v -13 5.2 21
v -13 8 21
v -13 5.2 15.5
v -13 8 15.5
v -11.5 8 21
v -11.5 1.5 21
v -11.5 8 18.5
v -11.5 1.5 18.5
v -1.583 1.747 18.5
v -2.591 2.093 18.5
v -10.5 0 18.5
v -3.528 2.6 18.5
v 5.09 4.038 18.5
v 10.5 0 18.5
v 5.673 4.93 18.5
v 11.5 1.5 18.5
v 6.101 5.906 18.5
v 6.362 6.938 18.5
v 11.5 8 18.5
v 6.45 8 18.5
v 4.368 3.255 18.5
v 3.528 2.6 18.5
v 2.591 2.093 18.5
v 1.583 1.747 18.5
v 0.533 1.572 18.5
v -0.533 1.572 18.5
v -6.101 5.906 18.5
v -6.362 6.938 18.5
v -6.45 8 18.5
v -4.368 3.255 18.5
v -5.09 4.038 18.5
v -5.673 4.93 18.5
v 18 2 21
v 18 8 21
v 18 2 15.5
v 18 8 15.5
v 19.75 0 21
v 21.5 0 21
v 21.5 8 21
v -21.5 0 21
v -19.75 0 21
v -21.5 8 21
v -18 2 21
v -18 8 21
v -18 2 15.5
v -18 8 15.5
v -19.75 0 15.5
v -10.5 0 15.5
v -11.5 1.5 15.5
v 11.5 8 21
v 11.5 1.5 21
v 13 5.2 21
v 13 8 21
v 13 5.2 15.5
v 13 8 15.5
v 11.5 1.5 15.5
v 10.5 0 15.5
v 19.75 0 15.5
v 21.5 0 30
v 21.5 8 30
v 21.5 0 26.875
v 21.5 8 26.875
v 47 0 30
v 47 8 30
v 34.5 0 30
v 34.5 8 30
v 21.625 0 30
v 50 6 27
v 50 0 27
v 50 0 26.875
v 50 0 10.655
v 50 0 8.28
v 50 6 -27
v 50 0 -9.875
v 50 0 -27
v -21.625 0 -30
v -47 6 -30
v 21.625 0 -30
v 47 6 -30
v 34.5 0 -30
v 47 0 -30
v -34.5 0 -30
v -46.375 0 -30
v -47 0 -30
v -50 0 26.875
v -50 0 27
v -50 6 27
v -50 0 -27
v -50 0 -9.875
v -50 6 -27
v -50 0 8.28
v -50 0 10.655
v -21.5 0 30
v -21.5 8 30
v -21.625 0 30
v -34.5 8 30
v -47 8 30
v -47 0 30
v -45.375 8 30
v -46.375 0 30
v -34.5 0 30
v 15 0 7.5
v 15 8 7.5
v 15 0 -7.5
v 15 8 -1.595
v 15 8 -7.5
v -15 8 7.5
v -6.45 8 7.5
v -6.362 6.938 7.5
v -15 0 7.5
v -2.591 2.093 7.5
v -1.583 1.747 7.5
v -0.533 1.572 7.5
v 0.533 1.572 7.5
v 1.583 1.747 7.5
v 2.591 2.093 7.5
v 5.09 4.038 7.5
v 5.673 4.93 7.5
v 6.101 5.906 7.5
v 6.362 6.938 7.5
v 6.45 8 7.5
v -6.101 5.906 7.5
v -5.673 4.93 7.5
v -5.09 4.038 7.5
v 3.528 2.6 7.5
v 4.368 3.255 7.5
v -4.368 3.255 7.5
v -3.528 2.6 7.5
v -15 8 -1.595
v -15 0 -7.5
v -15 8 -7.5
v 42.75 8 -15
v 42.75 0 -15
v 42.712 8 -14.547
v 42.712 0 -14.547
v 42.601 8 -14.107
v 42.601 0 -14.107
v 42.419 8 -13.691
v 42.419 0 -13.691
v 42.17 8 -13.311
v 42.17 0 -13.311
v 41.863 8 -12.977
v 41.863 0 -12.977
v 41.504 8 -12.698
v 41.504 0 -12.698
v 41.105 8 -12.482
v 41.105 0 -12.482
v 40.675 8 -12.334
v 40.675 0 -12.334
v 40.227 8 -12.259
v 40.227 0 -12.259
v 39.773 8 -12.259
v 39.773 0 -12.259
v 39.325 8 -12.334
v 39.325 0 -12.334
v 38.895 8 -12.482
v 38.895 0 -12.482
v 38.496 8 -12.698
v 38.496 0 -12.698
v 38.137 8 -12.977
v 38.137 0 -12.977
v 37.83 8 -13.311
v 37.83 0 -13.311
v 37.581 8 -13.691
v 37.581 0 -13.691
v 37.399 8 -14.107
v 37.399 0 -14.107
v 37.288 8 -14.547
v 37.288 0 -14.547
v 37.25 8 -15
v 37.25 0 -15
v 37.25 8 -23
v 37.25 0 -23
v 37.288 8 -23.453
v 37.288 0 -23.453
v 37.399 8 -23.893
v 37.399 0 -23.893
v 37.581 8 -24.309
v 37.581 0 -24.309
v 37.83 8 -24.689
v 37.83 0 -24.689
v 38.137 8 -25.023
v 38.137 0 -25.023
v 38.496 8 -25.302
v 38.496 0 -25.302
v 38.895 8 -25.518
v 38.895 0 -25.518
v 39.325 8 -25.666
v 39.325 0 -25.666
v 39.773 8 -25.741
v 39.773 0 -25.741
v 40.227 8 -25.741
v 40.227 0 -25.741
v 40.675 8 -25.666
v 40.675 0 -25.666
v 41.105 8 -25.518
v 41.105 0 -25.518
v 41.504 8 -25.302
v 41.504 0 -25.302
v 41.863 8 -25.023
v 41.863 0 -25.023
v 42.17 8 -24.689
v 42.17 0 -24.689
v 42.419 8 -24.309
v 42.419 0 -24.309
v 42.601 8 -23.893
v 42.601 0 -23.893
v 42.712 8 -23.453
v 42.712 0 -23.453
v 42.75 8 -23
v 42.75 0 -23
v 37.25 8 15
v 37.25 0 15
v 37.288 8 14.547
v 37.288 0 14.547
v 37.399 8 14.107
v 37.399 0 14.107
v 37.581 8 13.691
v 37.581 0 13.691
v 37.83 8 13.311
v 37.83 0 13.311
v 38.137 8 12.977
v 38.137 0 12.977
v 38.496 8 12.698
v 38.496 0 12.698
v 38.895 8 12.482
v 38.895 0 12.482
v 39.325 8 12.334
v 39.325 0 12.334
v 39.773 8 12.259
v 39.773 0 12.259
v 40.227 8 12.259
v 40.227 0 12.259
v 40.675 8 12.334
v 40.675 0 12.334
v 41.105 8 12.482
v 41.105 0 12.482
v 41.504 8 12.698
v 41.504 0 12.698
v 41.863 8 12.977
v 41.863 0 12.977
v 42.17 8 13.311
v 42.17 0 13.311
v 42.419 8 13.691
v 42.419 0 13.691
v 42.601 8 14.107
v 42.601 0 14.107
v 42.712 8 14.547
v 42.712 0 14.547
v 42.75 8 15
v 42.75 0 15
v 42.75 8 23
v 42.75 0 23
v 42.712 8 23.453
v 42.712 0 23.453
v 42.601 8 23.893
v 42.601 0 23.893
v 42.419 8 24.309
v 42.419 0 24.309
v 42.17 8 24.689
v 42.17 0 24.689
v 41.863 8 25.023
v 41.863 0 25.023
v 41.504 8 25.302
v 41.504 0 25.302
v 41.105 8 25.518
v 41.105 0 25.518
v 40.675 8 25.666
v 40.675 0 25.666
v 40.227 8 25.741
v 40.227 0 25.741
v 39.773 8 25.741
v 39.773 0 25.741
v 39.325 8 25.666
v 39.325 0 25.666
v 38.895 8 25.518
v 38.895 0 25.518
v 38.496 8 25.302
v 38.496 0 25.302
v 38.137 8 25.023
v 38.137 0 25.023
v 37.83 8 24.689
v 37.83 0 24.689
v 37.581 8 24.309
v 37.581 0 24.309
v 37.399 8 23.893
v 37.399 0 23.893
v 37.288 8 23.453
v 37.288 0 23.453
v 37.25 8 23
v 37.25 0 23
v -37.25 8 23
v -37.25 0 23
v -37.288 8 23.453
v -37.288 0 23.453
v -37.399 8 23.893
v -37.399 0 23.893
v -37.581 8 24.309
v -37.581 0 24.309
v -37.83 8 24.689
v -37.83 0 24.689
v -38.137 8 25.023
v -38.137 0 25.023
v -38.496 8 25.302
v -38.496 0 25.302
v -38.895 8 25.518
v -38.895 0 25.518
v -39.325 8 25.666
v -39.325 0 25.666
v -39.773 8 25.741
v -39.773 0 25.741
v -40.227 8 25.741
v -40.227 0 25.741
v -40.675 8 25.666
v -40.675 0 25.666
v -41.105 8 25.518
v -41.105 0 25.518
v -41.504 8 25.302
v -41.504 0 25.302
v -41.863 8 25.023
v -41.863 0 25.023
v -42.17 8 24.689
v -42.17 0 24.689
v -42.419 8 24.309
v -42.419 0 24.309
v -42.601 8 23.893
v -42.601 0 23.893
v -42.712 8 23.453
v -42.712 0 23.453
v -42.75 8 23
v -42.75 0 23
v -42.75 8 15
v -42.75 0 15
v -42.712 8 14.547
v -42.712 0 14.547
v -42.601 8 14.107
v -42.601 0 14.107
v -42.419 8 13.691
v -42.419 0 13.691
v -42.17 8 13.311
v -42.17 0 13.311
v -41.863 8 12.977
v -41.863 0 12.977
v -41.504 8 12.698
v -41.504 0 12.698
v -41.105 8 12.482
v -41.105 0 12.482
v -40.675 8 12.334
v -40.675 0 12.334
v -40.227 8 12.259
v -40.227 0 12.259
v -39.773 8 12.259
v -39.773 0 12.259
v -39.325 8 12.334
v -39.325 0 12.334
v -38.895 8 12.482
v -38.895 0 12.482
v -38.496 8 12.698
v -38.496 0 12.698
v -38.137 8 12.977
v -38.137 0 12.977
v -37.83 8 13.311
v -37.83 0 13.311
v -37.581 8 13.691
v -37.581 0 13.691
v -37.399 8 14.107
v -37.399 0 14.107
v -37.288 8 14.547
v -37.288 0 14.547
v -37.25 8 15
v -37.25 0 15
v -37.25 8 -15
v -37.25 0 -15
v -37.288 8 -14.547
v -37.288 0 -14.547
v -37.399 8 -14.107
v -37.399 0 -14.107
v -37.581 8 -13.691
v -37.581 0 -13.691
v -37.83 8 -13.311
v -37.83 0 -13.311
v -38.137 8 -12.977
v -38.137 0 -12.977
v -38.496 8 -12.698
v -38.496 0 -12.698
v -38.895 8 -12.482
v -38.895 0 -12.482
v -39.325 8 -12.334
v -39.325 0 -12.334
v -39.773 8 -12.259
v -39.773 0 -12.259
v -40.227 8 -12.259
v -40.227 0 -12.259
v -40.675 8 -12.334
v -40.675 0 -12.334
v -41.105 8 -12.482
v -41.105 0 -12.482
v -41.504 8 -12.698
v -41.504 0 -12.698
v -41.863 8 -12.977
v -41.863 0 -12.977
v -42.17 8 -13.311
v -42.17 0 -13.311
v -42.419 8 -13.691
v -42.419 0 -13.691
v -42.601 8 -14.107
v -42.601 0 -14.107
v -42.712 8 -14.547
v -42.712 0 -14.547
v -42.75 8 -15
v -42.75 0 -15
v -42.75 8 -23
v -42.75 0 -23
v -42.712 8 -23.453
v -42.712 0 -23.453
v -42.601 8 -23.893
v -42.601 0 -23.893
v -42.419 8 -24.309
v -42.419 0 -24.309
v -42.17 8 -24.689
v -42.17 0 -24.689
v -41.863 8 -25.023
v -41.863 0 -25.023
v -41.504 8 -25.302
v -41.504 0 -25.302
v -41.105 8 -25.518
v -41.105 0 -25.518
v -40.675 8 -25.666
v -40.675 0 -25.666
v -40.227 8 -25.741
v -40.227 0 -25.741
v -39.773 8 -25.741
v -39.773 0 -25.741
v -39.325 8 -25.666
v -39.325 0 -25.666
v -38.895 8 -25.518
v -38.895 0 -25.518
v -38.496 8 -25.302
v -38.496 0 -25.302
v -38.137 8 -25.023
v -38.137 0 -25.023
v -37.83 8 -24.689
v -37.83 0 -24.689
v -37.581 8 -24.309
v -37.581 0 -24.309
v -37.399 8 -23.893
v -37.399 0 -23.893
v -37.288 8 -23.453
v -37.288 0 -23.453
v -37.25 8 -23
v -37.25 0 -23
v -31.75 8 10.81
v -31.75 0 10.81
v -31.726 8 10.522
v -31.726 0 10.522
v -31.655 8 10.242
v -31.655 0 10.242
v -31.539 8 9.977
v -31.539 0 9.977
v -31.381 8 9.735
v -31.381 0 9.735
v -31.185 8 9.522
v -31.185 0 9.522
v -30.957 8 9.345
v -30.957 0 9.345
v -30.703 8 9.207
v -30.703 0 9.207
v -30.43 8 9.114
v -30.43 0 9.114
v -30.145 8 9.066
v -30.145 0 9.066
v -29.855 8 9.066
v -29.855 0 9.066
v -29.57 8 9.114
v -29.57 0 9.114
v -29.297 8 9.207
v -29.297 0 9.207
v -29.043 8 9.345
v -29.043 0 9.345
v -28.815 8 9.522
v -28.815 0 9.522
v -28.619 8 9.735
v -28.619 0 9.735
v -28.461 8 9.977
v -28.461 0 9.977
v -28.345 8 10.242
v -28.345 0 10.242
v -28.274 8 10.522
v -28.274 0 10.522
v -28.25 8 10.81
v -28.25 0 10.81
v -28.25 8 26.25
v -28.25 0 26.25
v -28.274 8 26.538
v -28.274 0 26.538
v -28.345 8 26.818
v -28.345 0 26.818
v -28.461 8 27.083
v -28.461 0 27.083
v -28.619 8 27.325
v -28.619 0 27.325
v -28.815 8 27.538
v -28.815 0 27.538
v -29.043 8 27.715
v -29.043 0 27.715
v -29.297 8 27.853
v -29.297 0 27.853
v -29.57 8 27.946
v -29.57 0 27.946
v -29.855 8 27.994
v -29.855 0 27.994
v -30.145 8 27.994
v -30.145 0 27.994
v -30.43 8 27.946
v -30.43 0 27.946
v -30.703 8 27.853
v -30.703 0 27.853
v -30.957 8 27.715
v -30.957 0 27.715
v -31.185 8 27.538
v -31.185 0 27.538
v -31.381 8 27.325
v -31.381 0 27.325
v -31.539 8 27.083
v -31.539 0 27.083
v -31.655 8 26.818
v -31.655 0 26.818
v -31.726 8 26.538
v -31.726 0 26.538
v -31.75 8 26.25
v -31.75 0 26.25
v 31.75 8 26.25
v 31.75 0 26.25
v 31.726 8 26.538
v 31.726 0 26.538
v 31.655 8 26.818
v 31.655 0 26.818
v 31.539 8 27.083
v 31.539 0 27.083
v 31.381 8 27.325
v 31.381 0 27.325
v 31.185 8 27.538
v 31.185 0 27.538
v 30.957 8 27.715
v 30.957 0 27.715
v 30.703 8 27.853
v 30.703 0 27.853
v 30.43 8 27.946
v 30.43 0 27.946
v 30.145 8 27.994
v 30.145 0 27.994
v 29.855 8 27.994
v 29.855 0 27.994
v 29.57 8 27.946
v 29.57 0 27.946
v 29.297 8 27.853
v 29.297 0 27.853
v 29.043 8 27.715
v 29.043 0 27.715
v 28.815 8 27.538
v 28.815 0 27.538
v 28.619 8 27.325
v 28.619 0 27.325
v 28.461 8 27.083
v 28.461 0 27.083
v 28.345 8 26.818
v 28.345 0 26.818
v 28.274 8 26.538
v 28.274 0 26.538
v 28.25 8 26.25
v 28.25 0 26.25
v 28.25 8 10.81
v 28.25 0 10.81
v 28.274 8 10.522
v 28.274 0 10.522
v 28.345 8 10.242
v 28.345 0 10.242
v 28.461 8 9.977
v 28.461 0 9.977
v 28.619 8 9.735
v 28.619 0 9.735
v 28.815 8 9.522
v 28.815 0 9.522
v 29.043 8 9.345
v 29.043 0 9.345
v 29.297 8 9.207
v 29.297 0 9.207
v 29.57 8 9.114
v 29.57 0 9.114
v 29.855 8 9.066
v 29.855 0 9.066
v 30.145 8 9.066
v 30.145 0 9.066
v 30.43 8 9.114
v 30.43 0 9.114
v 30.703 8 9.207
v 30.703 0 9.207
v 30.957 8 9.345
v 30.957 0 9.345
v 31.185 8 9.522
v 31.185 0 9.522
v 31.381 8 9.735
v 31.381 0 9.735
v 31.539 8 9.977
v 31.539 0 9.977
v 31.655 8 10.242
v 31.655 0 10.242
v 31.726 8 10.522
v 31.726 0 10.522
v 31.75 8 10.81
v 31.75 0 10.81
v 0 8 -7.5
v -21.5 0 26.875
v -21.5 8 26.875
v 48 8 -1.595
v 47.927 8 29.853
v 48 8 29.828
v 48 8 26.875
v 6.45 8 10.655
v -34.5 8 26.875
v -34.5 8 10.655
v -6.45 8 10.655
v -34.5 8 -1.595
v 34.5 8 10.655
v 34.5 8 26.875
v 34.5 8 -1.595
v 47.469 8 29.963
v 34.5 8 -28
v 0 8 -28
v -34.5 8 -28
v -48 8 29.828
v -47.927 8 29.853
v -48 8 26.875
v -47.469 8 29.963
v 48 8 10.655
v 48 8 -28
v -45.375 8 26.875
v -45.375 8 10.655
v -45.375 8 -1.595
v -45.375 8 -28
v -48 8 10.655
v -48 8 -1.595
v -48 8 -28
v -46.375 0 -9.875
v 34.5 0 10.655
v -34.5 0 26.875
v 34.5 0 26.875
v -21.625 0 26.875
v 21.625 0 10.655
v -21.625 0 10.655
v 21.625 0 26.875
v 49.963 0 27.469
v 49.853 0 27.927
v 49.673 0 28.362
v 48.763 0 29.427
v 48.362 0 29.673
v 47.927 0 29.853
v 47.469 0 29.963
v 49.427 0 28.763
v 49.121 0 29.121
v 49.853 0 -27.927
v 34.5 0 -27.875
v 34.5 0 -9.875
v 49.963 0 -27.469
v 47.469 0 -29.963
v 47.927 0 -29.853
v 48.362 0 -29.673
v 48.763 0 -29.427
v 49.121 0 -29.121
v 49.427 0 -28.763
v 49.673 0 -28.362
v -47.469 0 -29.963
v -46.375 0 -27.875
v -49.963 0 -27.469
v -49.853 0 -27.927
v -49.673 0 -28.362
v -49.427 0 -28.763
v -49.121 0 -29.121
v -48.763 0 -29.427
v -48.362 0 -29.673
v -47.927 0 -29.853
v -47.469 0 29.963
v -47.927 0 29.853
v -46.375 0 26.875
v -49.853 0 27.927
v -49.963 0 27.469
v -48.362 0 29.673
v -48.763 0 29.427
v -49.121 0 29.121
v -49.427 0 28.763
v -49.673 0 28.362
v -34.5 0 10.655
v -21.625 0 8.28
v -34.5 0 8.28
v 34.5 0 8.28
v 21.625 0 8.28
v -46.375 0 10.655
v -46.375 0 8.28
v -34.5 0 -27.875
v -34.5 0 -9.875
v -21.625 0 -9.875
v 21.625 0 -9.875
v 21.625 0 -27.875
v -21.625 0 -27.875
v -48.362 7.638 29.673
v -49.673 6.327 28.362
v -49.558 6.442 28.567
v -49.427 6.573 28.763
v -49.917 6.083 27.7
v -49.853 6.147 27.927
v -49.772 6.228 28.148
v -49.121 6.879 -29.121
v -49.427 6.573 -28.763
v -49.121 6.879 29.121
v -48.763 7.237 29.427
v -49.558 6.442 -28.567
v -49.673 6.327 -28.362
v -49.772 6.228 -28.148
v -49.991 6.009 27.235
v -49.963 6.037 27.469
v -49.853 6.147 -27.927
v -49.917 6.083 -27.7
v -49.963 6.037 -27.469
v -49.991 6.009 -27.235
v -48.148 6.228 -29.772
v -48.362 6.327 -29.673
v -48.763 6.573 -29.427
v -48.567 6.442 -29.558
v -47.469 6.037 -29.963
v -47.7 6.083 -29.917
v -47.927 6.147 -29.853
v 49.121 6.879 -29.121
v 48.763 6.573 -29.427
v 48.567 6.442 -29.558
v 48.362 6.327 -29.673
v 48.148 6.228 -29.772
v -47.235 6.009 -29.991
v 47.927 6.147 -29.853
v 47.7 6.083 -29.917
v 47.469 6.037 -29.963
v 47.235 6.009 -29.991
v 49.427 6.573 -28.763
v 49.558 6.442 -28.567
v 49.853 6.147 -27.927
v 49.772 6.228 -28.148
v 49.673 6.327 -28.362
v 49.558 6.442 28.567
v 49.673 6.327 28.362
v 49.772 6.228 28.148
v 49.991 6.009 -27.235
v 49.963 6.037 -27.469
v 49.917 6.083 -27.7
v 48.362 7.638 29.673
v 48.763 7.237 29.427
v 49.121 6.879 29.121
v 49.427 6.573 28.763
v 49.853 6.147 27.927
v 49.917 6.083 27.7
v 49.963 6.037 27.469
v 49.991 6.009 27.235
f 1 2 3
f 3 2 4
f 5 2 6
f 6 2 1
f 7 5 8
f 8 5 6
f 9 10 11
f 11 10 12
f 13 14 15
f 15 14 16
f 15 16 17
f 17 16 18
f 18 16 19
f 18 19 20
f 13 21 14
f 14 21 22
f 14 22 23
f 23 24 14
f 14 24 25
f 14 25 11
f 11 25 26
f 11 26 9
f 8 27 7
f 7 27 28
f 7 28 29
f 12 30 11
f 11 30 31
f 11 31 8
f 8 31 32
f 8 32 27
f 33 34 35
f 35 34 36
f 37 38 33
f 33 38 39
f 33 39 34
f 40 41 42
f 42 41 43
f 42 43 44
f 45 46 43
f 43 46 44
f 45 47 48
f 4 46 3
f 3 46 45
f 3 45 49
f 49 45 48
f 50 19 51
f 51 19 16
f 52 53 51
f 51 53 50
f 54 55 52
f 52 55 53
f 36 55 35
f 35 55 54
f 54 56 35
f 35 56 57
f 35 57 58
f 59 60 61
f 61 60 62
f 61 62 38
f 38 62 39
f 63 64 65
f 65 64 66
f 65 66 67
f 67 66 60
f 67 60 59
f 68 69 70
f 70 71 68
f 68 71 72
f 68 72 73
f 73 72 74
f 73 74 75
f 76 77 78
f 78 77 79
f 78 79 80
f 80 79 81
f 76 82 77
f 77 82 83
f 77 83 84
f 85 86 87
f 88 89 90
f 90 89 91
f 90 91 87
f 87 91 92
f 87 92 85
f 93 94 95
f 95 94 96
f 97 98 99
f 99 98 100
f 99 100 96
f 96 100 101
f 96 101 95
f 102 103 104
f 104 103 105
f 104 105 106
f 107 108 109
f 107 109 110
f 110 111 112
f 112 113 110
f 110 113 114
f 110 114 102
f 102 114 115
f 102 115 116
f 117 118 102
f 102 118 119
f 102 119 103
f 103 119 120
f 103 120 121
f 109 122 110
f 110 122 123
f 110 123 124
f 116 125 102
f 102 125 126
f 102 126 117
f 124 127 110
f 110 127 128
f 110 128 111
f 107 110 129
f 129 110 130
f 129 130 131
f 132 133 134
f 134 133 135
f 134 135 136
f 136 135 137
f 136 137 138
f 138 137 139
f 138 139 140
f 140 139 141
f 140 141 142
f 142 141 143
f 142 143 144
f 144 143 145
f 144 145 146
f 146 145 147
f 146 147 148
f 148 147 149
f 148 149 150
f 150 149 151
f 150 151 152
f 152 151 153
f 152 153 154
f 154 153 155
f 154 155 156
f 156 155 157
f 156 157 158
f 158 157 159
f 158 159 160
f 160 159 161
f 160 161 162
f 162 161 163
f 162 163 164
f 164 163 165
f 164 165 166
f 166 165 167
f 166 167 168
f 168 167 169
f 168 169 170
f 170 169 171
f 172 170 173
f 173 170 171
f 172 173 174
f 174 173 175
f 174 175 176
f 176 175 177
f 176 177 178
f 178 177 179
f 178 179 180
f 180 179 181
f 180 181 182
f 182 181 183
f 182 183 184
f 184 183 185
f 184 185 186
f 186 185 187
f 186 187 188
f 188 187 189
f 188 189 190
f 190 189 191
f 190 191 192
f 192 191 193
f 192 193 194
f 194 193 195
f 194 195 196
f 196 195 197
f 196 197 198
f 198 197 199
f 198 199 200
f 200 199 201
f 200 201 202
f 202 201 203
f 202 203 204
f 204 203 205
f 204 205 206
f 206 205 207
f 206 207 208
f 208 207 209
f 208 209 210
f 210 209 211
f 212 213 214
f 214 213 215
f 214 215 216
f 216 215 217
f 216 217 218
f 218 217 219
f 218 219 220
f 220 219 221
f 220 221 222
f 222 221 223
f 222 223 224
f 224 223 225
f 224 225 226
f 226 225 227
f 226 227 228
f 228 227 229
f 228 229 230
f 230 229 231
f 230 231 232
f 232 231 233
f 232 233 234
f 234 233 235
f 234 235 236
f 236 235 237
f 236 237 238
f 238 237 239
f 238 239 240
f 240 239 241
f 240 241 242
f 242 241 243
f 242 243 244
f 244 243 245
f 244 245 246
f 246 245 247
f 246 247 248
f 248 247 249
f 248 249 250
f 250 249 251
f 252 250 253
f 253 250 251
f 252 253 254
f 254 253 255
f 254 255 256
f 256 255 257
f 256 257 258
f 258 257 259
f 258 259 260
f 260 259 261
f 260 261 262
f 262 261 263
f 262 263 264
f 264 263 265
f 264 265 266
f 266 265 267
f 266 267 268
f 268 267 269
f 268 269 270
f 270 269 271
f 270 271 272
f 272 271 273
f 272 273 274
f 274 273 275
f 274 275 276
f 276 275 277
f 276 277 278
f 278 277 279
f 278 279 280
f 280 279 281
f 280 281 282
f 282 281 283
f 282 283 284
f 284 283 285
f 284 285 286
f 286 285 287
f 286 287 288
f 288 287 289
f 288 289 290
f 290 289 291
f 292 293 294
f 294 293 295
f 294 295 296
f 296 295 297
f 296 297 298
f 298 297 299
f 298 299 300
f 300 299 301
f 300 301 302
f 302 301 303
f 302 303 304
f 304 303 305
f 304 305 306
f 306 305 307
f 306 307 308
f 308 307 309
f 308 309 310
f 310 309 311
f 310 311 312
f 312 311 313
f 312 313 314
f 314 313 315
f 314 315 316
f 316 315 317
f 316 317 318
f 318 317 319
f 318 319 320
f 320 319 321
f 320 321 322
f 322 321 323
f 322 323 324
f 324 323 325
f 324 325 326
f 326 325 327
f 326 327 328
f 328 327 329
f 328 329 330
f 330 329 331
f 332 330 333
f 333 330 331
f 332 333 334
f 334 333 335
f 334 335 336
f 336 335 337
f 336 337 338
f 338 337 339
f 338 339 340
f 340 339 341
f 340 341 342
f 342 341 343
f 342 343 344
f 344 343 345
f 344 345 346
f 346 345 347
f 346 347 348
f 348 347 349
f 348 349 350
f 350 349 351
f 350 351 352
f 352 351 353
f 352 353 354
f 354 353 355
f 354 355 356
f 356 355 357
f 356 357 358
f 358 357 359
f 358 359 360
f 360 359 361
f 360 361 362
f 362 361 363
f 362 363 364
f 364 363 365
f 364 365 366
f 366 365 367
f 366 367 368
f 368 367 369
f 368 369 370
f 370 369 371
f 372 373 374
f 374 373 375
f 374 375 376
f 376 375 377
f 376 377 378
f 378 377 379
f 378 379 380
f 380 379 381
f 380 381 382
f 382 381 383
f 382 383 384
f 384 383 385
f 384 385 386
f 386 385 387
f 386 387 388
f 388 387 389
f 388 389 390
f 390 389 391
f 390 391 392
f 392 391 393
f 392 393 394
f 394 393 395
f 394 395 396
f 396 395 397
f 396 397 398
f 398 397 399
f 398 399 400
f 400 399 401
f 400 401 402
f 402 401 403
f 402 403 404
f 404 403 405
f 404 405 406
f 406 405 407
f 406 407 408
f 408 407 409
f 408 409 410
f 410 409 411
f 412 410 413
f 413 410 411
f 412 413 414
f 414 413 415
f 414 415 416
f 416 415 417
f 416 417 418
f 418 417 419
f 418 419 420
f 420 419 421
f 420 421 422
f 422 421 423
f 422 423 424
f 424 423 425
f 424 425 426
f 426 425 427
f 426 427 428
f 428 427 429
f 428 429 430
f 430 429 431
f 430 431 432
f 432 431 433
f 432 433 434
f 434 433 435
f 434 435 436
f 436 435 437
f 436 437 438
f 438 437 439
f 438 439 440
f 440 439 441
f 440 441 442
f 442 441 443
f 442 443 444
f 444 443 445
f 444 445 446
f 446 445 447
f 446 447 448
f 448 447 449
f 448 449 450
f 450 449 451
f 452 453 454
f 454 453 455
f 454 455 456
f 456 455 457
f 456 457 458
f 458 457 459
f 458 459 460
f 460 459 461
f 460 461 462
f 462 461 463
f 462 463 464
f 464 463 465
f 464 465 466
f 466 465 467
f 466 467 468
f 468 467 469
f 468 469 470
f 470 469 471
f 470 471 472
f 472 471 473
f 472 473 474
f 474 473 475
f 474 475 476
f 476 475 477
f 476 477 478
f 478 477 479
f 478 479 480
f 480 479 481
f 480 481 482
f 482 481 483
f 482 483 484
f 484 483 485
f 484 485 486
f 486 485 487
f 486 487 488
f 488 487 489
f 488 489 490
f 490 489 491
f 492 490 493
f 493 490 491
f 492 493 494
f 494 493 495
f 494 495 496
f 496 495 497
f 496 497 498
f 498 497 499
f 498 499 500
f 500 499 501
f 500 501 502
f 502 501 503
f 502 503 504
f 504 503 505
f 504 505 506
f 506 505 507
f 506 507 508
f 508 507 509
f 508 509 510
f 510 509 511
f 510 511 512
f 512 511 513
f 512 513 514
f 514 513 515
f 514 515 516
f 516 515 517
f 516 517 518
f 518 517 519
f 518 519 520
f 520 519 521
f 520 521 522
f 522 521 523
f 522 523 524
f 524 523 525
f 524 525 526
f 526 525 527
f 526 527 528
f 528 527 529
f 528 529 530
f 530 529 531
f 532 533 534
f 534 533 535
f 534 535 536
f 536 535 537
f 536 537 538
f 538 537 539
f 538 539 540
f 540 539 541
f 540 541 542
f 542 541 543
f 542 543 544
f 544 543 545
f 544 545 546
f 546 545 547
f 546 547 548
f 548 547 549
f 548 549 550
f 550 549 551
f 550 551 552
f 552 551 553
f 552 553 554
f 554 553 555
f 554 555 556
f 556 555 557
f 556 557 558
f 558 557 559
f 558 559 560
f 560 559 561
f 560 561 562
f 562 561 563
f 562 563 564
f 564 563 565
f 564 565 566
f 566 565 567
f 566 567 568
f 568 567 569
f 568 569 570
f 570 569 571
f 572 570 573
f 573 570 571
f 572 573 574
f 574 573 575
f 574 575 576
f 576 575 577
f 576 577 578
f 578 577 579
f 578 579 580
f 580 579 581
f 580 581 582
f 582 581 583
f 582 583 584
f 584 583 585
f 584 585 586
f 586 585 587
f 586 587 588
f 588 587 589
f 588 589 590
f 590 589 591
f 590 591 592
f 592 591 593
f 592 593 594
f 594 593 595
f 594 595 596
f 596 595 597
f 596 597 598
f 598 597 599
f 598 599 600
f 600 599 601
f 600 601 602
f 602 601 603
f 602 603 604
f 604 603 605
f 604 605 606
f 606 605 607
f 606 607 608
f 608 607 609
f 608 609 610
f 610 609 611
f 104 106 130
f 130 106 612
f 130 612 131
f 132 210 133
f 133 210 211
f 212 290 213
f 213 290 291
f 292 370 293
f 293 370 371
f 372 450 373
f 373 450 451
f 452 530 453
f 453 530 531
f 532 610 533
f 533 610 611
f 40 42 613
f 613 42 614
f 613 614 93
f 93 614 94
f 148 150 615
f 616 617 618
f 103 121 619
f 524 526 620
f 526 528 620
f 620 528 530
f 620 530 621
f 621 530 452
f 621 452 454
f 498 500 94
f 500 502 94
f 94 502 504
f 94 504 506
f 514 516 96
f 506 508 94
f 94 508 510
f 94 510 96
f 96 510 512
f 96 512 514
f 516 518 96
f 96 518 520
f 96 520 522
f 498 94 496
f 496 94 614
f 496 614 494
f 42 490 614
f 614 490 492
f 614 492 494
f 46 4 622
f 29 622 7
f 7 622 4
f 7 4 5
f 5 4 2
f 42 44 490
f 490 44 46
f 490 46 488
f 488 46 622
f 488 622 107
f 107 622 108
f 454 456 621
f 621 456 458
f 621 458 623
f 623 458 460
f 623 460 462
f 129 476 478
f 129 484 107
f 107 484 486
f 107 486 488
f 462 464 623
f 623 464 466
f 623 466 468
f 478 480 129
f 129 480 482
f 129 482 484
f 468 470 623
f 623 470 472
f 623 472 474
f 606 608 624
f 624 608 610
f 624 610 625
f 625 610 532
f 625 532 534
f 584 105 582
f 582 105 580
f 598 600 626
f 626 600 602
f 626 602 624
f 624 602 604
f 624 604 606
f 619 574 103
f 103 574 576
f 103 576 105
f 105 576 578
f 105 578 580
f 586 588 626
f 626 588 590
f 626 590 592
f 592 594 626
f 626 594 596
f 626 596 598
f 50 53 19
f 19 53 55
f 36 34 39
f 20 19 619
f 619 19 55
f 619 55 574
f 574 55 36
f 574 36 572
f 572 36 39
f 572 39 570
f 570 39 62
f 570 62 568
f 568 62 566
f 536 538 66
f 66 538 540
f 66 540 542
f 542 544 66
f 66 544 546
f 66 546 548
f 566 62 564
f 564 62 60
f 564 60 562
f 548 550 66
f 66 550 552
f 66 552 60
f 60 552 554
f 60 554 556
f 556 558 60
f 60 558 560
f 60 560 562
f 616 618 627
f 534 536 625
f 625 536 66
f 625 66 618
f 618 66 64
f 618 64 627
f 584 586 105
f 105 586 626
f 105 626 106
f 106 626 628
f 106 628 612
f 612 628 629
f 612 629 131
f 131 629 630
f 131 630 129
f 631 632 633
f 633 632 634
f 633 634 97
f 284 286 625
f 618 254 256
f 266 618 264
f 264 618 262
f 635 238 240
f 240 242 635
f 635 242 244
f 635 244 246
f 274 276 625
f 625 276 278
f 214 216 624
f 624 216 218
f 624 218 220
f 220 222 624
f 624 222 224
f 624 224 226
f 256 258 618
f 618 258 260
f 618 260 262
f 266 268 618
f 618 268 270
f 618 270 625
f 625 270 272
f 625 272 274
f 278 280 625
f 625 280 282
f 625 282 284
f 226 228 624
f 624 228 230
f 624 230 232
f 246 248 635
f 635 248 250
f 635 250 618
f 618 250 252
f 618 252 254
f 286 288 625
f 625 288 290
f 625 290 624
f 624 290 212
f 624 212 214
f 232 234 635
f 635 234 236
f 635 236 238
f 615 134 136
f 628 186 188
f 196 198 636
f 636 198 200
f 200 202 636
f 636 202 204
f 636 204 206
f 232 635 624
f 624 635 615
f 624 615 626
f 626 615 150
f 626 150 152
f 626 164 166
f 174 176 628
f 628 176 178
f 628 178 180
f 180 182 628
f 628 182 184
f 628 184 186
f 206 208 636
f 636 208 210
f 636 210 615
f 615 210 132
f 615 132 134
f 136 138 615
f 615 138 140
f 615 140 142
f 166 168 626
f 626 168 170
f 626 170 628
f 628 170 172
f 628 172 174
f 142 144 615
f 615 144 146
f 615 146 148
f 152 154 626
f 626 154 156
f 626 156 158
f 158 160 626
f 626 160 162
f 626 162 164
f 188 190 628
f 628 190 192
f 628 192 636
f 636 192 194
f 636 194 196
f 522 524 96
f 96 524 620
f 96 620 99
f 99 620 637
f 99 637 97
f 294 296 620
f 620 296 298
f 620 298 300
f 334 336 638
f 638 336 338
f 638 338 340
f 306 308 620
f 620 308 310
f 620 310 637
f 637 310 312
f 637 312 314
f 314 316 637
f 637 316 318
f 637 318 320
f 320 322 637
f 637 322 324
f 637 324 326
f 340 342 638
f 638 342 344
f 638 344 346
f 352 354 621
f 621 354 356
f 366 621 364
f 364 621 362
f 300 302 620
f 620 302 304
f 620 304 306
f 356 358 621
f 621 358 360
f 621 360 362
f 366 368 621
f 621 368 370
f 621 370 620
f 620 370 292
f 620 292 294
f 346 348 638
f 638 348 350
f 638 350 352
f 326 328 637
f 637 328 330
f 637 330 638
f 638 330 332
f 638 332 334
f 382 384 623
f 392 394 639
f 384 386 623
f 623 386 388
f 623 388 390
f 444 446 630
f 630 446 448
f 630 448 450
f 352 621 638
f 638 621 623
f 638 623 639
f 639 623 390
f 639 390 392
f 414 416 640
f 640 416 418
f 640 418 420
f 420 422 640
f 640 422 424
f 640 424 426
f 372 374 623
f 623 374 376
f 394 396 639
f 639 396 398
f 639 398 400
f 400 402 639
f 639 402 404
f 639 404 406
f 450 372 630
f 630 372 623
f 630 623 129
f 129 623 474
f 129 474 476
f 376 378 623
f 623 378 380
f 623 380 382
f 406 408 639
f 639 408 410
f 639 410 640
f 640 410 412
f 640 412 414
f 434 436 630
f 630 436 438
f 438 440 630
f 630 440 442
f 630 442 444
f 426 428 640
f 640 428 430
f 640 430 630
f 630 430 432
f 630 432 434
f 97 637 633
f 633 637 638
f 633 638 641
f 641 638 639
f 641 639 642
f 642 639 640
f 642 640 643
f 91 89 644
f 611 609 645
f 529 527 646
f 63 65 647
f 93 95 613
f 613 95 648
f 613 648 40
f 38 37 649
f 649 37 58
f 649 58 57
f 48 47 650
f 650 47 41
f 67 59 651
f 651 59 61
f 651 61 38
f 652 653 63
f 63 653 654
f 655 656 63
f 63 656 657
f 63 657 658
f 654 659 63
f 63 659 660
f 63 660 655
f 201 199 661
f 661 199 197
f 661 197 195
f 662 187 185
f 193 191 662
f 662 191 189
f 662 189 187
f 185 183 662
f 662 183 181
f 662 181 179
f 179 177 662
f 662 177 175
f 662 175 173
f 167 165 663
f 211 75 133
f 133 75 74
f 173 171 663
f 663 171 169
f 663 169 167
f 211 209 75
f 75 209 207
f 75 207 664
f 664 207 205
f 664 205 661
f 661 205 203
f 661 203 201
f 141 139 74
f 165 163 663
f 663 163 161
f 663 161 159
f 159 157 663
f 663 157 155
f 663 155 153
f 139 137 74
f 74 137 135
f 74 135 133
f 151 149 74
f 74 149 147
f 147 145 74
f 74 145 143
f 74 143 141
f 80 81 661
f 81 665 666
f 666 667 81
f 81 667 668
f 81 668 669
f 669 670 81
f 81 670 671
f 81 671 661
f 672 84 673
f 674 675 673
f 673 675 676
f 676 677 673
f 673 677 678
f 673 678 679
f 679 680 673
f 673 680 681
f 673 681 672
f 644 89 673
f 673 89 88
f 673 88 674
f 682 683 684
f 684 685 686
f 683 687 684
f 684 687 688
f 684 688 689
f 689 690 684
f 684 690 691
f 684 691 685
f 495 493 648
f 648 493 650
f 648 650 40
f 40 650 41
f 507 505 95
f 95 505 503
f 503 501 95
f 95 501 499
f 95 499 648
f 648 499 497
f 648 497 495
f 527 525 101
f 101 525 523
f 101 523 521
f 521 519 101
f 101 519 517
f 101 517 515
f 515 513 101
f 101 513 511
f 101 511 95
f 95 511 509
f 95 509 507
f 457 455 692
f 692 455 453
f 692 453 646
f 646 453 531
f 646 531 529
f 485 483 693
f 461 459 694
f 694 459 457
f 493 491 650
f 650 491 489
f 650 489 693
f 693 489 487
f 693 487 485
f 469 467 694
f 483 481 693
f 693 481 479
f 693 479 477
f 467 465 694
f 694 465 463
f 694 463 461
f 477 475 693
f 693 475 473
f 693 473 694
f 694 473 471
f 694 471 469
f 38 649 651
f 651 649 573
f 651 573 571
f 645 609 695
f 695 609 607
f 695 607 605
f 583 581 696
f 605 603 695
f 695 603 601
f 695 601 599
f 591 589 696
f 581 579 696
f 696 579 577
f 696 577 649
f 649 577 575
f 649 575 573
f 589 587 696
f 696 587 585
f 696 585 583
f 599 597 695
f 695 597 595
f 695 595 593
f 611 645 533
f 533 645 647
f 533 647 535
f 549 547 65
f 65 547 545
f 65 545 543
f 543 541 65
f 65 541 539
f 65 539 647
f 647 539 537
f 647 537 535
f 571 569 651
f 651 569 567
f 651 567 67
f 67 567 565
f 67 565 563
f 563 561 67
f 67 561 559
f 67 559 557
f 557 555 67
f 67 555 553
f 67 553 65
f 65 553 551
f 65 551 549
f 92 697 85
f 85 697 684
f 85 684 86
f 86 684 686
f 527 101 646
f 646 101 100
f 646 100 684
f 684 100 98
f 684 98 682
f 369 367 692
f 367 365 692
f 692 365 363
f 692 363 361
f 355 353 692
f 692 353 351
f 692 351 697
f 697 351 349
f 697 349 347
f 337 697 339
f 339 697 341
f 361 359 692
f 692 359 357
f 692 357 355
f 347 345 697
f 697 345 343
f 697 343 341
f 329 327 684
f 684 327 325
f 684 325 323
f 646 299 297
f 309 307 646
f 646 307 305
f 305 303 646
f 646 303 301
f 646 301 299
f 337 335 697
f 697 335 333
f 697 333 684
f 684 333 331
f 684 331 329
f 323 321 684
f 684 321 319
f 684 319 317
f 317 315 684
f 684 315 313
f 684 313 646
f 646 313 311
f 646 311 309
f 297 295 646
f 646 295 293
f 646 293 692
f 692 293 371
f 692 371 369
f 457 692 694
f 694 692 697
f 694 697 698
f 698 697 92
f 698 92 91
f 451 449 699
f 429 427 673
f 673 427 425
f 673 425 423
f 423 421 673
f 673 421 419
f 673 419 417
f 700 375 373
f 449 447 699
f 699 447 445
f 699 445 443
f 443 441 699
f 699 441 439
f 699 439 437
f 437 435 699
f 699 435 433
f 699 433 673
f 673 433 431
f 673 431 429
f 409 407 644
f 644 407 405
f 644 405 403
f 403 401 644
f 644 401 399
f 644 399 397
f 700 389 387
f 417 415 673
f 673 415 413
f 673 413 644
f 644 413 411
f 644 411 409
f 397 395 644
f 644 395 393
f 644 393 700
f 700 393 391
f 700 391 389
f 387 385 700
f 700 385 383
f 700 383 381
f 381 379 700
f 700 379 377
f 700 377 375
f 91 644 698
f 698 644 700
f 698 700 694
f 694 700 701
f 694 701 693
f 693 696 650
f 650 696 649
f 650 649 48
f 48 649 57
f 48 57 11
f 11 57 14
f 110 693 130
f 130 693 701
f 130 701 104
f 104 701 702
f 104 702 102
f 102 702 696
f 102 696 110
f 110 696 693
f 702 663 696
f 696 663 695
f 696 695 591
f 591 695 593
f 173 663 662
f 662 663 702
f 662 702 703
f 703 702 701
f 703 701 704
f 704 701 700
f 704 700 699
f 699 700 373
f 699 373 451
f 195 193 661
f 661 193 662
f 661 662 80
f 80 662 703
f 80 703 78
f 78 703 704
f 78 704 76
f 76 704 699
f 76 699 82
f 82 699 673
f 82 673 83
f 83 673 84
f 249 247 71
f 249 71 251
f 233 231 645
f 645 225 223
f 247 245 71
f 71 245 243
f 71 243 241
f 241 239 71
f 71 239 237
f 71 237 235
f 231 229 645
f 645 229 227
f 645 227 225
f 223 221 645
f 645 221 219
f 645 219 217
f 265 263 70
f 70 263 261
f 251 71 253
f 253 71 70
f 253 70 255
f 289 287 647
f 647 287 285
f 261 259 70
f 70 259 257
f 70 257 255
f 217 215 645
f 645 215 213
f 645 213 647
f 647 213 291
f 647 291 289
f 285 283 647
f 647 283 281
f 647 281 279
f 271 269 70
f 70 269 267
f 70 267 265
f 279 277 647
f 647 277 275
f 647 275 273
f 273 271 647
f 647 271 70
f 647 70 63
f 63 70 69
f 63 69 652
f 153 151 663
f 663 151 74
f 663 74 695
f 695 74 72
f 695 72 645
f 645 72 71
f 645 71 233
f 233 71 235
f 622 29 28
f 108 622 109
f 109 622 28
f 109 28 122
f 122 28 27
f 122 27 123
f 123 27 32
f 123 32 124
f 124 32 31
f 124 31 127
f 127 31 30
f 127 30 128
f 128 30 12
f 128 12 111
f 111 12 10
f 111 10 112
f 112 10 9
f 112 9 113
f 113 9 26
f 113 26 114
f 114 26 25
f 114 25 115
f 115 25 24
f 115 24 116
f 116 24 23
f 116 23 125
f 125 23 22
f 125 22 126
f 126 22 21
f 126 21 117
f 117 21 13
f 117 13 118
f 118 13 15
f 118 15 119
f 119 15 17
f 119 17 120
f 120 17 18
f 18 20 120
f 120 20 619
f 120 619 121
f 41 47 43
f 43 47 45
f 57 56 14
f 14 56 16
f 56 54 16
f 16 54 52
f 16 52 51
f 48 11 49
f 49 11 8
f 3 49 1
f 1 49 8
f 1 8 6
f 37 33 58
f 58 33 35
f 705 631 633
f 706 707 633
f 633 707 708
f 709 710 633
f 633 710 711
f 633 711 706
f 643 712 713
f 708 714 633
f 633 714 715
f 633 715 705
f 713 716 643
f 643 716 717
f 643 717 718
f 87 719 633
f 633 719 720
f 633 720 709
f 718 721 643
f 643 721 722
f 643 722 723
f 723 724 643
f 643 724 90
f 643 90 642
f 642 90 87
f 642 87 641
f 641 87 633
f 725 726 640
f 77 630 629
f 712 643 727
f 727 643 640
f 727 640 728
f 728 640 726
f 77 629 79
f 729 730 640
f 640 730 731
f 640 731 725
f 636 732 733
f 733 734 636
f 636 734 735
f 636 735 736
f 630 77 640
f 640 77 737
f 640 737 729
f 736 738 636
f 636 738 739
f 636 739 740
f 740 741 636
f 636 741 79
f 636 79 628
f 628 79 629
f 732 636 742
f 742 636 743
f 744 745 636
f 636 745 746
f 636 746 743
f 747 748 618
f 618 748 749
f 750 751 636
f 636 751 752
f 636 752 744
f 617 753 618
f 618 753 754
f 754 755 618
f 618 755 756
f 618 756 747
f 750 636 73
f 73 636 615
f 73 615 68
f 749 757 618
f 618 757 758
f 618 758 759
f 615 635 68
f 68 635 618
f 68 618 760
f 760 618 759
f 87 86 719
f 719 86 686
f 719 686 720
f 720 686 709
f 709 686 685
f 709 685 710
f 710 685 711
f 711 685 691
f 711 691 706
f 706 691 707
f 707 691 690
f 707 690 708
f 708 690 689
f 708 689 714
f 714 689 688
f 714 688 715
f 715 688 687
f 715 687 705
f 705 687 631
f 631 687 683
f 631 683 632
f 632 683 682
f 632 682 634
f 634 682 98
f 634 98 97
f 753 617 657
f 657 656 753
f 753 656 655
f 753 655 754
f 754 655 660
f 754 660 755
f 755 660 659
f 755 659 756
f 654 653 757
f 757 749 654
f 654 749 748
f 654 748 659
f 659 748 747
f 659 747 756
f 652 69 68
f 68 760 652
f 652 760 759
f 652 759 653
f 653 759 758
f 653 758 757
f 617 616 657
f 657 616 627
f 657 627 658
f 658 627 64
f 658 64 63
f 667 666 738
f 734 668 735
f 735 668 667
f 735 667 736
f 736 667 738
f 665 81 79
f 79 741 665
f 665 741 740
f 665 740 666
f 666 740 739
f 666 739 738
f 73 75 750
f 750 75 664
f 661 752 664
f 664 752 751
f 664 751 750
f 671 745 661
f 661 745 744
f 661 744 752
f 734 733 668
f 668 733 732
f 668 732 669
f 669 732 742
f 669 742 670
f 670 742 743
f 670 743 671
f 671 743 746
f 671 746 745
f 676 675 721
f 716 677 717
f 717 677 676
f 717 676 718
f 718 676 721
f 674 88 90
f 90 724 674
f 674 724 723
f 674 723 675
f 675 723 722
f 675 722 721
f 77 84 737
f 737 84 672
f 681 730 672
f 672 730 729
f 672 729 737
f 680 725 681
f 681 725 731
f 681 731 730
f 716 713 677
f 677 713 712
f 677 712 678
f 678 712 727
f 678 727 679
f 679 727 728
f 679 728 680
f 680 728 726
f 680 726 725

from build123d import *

# Parameters (mm, degrees)
SKETCH1_W           = 30
SKETCH1_H           = 15
BOSS_EXTRUDE1_DEPTH = 8
SKETCH4_R           = 6.45
CUT_EXTRUDE1_DEPTH  = 11
CUT_EXTRUDE2_DEPTH  = 5.5
CHAMFER1_SIZE       = 2
FILLET1_R           = 3


with BuildPart() as part:
    # Sketch1 → Boss-Extrude1 (new body)
    with BuildSketch(Plane(origin=(0, 0, 0), x_dir=(1, 0, 0), z_dir=(0, 1, 0))):
        Polygon((50, 30), (-50, 30), (-50, -30), (-21.5, -30), (-21.5, -21), (-18, -21), (-18, -15.5), (-13, -15.5), (-13, -21), (-11.5, -21), (-11.5, -18.5), (11.5, -18.5), (11.5, -21), (13, -21), (13, -15.5), (18, -15.5), (18, -21), (21.5, -21), (21.5, -30), (50, -30), align=None)
        with BuildLine():
            ThreePointArc((-42.75, -15), (-40, -12.25), (-37.25, -15))
            Line((-37.25, -15), (-37.25, -19))
            Line((-37.25, -19), (-37.25, -23))
            ThreePointArc((-37.25, -23), (-40, -25.75), (-42.75, -23))
            Line((-42.75, -23), (-42.75, -19))
            Line((-42.75, -19), (-42.75, -15))
        make_face(mode=Mode.SUBTRACT)
        with BuildLine():
            ThreePointArc((-28.25, -26.25), (-30, -28), (-31.75, -26.25))
            Line((-31.75, -26.25), (-31.75, -10.81))
            ThreePointArc((-31.75, -10.81), (-30, -9.06), (-28.25, -10.81))
            Line((-28.25, -10.81), (-28.25, -26.25))
        make_face(mode=Mode.SUBTRACT)
        with BuildLine():
            ThreePointArc((28.25, -10.81), (30, -9.06), (31.75, -10.81))
            Line((31.75, -10.81), (31.75, -26.25))
            ThreePointArc((31.75, -26.25), (30, -28), (28.25, -26.25))
            Line((28.25, -26.25), (28.25, -10.81))
        make_face(mode=Mode.SUBTRACT)
        with BuildLine():
            ThreePointArc((42.75, -23), (40, -25.75), (37.25, -23))
            Line((37.25, -23), (37.25, -19))
            Line((37.25, -19), (37.25, -15))
            ThreePointArc((37.25, -15), (40, -12.25), (42.75, -15))
            Line((42.75, -15), (42.75, -19))
            Line((42.75, -19), (42.75, -23))
        make_face(mode=Mode.SUBTRACT)
        with BuildLine():
            ThreePointArc((-42.75, 23), (-40, 25.75), (-37.25, 23))
            Line((-37.25, 23), (-37.25, 19))
            Line((-37.25, 19), (-37.25, 15))
            ThreePointArc((-37.25, 15), (-40, 12.25), (-42.75, 15))
            Line((-42.75, 15), (-42.75, 19))
            Line((-42.75, 19), (-42.75, 23))
        make_face(mode=Mode.SUBTRACT)
        Rectangle(SKETCH1_W, SKETCH1_H, mode=Mode.SUBTRACT)
        with BuildLine():
            ThreePointArc((37.25, 23), (40, 25.75), (42.75, 23))
            Line((42.75, 23), (42.75, 19))
            Line((42.75, 19), (42.75, 15))
            ThreePointArc((42.75, 15), (40, 12.25), (37.25, 15))
            Line((37.25, 15), (37.25, 19))
            Line((37.25, 19), (37.25, 23))
        make_face(mode=Mode.SUBTRACT)
    extrude(amount=BOSS_EXTRUDE1_DEPTH)

    # Sketch4 → Cut-Extrude1 (cut)
    with BuildSketch(Plane.XY.offset(18.5)):
        with Locations((0, 8)):
            Circle(SKETCH4_R)
    extrude(amount=-CUT_EXTRUDE1_DEPTH, mode=Mode.SUBTRACT)

    # Sketch5 → Cut-Extrude2 (cut)
    with BuildSketch(Plane.XY.offset(21)):
        Polygon((13, 0), (13, 5.2), (11.5, 1.5), (11.5, 0), align=None)
        Polygon((19.75, 0), (18, 2), (18, 0), align=None)
        Polygon((-11.5, 0), (-11.5, 1.5), (-13, 5.2), (-13, 0), align=None)
        Polygon((-18, 2), (-19.75, 0), (-18, 0), align=None)
        Polygon((11.5, 0), (11.5, 1.5), (10.5, 0), align=None)
        Polygon((-11.5, 0), (-10.5, 0), (-11.5, 1.5), align=None)
    extrude(amount=-CUT_EXTRUDE2_DEPTH, mode=Mode.SUBTRACT)

    # Chamfer1
    chamfer1_edges = [part.edges().sort_by_distance(p)[0] for p in [
        (50, 8, 0),
        (0, 8, -30),
        (-50, 8, 0),
    ]]
    chamfer(chamfer1_edges, length=CHAMFER1_SIZE)

    # Fillet1
    fillet1_edges = [part.edges().sort_by_distance(p)[0] for p in [
        (-50, 3, 30),
        (50, 3, 30),
        (50, 3, -30),
        (-50, 3, -30),
    ]]
    fillet(fillet1_edges, radius=FILLET1_R)


solid = part.part
